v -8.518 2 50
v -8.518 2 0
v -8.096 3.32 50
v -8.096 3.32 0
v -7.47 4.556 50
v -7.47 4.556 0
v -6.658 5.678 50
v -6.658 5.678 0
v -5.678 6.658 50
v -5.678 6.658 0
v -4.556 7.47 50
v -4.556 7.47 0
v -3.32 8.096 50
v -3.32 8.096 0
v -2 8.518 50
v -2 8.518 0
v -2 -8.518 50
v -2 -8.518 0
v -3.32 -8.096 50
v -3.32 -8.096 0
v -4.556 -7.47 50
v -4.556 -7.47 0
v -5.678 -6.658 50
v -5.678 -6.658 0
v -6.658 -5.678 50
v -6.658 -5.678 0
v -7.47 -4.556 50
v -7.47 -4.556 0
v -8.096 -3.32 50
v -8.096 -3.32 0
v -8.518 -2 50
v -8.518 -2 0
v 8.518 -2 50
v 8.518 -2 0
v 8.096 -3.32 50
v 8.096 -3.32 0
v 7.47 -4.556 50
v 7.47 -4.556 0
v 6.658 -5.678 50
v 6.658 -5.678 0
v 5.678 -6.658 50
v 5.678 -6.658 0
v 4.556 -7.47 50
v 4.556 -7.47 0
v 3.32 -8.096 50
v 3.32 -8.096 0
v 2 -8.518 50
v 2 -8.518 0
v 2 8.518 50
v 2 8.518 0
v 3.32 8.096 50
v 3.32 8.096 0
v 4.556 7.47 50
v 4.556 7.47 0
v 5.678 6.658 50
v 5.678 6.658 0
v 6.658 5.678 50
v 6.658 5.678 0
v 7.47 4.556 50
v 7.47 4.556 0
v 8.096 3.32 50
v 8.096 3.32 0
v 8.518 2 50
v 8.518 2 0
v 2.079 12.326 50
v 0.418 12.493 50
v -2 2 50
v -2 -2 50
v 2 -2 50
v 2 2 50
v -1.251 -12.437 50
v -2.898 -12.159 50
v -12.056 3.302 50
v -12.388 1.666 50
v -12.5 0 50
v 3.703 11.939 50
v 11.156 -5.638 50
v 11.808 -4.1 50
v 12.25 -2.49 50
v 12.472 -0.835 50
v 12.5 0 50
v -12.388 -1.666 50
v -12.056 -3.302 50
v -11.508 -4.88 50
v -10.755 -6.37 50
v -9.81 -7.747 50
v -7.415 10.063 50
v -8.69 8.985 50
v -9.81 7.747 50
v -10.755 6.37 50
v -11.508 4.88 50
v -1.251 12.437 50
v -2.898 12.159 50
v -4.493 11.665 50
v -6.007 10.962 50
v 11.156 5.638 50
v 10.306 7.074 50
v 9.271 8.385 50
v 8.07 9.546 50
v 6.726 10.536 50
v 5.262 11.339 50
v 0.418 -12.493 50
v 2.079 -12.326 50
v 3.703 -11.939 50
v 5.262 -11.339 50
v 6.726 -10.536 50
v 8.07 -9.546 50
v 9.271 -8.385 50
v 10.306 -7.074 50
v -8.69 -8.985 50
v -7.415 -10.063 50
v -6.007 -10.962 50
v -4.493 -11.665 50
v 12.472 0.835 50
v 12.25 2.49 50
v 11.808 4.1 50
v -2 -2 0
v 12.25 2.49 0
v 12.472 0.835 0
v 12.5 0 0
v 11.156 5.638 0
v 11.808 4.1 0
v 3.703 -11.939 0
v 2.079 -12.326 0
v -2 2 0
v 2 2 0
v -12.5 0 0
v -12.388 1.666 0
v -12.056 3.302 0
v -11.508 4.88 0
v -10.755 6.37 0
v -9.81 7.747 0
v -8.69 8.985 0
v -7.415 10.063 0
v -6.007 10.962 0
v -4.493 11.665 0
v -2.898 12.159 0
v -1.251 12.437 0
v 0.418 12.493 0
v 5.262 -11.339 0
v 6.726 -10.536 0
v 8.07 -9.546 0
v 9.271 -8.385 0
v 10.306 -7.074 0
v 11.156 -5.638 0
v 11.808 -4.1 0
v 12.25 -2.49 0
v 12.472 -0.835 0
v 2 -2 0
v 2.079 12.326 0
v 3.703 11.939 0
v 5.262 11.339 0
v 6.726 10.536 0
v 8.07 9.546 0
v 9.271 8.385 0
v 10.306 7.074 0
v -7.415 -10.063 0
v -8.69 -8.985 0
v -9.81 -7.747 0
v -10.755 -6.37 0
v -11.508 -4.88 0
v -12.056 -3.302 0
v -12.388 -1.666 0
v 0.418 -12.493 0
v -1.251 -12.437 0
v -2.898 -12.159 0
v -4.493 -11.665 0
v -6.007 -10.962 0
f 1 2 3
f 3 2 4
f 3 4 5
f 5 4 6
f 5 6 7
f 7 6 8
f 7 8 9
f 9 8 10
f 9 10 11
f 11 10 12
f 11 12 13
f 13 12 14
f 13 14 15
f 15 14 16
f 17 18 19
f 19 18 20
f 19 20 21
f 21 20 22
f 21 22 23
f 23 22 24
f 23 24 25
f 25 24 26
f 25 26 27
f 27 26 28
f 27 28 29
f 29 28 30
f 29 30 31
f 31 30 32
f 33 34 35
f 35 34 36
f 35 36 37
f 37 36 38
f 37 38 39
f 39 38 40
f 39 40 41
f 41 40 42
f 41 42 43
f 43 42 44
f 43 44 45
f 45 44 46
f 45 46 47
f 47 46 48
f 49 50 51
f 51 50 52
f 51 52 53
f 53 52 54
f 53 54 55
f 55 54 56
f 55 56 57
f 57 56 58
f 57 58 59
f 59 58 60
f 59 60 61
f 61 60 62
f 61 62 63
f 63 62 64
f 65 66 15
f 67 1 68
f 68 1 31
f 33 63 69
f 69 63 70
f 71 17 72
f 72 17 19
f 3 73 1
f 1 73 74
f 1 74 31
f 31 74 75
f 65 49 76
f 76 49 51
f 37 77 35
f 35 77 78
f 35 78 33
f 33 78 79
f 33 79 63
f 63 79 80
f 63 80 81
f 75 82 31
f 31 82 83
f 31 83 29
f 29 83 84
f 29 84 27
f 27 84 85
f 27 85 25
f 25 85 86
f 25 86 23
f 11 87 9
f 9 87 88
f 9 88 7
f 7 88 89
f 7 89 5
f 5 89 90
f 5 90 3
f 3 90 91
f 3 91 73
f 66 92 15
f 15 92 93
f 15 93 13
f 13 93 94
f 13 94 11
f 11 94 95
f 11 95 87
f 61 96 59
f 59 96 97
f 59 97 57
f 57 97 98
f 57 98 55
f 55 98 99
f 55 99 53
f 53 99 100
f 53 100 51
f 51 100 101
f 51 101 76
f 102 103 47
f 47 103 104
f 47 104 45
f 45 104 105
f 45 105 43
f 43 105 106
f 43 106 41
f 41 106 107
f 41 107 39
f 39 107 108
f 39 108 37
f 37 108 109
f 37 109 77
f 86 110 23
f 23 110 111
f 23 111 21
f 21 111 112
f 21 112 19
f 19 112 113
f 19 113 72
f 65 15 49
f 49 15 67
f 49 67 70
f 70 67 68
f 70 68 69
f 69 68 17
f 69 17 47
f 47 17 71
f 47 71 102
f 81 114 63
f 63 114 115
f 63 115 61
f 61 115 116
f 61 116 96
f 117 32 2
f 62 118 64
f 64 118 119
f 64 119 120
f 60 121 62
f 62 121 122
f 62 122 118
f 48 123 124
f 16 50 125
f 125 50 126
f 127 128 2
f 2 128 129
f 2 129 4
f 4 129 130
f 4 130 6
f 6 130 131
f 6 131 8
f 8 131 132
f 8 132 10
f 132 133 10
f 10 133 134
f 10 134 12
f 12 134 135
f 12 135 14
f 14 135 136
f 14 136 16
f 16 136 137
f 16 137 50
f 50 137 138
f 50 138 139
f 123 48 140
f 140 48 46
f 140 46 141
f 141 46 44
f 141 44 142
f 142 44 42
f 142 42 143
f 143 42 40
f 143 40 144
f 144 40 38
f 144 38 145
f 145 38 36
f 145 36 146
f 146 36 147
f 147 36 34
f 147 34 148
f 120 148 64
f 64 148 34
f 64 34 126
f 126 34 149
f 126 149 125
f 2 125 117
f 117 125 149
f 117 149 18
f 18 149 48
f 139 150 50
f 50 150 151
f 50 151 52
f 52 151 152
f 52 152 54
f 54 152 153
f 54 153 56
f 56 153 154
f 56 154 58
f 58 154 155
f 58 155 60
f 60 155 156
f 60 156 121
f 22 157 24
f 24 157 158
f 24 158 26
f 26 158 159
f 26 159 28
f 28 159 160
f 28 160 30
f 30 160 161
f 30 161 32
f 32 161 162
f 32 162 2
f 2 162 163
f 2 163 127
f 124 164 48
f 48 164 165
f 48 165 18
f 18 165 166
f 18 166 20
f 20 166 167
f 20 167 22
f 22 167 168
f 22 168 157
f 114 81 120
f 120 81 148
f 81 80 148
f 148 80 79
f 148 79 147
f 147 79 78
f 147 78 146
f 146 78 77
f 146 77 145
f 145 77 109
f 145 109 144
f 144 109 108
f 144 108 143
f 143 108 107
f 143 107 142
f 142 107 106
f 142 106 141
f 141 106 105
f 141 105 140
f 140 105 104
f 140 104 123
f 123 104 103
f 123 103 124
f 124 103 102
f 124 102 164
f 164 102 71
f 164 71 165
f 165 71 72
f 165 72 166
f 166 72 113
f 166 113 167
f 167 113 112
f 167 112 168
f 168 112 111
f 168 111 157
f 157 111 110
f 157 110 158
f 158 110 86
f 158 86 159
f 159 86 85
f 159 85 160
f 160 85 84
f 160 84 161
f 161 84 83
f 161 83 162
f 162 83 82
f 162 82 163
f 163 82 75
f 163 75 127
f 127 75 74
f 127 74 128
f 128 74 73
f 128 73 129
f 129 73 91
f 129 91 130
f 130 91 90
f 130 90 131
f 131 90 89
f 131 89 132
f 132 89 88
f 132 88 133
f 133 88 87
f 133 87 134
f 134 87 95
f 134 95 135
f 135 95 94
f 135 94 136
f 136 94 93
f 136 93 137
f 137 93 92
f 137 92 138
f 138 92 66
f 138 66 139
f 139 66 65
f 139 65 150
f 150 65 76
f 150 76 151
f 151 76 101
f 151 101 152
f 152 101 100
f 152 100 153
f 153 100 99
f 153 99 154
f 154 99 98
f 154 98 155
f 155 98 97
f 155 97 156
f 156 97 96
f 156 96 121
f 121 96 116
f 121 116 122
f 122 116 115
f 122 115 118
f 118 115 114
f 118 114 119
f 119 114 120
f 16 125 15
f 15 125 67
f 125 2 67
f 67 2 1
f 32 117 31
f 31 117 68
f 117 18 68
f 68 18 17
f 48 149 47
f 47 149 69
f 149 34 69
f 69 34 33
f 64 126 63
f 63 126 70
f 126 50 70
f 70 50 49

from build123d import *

# Parameters (mm, degrees)
SKETCH1_R           = 12.5
SKETCH1_R_2         = 8.75
BOSS_EXTRUDE1_DEPTH = 50
BOSS_EXTRUDE2_DEPTH = 50


with BuildPart() as part:
    # Sketch1 → Boss-Extrude1 (new body)
    with BuildSketch(Plane.XY):
        Circle(SKETCH1_R)
        Circle(SKETCH1_R_2, mode=Mode.SUBTRACT)
    extrude(amount=BOSS_EXTRUDE1_DEPTH)

    # Sketch2 → Boss-Extrude2 (add)
    with BuildSketch(Plane.XY):
        with BuildLine():
            Line((-2, -8.518362519), (-2, -2))
            Line((-2, -2), (-8.518362519, -2))
            ThreePointArc((-8.518362519, -2), (-8.75, 0), (-8.518362519, 2))
            Line((-8.518362519, 2), (-2, 2))
            Line((-2, 2), (-2, 8.518362519))
            ThreePointArc((-2, 8.518362519), (0, 8.75), (2, 8.518362519))
            Line((2, 8.518362519), (2, 2))
            Line((2, 2), (8.518362519, 2))
            ThreePointArc((8.518362519, 2), (8.75, 0), (8.518362519, -2))
            Line((8.518362519, -2), (2, -2))
            Line((2, -2), (2, -8.518362519))
            ThreePointArc((2, -8.518362519), (0, -8.75), (-2, -8.518362519))
        make_face()
    extrude(amount=BOSS_EXTRUDE2_DEPTH)


solid = part.part
